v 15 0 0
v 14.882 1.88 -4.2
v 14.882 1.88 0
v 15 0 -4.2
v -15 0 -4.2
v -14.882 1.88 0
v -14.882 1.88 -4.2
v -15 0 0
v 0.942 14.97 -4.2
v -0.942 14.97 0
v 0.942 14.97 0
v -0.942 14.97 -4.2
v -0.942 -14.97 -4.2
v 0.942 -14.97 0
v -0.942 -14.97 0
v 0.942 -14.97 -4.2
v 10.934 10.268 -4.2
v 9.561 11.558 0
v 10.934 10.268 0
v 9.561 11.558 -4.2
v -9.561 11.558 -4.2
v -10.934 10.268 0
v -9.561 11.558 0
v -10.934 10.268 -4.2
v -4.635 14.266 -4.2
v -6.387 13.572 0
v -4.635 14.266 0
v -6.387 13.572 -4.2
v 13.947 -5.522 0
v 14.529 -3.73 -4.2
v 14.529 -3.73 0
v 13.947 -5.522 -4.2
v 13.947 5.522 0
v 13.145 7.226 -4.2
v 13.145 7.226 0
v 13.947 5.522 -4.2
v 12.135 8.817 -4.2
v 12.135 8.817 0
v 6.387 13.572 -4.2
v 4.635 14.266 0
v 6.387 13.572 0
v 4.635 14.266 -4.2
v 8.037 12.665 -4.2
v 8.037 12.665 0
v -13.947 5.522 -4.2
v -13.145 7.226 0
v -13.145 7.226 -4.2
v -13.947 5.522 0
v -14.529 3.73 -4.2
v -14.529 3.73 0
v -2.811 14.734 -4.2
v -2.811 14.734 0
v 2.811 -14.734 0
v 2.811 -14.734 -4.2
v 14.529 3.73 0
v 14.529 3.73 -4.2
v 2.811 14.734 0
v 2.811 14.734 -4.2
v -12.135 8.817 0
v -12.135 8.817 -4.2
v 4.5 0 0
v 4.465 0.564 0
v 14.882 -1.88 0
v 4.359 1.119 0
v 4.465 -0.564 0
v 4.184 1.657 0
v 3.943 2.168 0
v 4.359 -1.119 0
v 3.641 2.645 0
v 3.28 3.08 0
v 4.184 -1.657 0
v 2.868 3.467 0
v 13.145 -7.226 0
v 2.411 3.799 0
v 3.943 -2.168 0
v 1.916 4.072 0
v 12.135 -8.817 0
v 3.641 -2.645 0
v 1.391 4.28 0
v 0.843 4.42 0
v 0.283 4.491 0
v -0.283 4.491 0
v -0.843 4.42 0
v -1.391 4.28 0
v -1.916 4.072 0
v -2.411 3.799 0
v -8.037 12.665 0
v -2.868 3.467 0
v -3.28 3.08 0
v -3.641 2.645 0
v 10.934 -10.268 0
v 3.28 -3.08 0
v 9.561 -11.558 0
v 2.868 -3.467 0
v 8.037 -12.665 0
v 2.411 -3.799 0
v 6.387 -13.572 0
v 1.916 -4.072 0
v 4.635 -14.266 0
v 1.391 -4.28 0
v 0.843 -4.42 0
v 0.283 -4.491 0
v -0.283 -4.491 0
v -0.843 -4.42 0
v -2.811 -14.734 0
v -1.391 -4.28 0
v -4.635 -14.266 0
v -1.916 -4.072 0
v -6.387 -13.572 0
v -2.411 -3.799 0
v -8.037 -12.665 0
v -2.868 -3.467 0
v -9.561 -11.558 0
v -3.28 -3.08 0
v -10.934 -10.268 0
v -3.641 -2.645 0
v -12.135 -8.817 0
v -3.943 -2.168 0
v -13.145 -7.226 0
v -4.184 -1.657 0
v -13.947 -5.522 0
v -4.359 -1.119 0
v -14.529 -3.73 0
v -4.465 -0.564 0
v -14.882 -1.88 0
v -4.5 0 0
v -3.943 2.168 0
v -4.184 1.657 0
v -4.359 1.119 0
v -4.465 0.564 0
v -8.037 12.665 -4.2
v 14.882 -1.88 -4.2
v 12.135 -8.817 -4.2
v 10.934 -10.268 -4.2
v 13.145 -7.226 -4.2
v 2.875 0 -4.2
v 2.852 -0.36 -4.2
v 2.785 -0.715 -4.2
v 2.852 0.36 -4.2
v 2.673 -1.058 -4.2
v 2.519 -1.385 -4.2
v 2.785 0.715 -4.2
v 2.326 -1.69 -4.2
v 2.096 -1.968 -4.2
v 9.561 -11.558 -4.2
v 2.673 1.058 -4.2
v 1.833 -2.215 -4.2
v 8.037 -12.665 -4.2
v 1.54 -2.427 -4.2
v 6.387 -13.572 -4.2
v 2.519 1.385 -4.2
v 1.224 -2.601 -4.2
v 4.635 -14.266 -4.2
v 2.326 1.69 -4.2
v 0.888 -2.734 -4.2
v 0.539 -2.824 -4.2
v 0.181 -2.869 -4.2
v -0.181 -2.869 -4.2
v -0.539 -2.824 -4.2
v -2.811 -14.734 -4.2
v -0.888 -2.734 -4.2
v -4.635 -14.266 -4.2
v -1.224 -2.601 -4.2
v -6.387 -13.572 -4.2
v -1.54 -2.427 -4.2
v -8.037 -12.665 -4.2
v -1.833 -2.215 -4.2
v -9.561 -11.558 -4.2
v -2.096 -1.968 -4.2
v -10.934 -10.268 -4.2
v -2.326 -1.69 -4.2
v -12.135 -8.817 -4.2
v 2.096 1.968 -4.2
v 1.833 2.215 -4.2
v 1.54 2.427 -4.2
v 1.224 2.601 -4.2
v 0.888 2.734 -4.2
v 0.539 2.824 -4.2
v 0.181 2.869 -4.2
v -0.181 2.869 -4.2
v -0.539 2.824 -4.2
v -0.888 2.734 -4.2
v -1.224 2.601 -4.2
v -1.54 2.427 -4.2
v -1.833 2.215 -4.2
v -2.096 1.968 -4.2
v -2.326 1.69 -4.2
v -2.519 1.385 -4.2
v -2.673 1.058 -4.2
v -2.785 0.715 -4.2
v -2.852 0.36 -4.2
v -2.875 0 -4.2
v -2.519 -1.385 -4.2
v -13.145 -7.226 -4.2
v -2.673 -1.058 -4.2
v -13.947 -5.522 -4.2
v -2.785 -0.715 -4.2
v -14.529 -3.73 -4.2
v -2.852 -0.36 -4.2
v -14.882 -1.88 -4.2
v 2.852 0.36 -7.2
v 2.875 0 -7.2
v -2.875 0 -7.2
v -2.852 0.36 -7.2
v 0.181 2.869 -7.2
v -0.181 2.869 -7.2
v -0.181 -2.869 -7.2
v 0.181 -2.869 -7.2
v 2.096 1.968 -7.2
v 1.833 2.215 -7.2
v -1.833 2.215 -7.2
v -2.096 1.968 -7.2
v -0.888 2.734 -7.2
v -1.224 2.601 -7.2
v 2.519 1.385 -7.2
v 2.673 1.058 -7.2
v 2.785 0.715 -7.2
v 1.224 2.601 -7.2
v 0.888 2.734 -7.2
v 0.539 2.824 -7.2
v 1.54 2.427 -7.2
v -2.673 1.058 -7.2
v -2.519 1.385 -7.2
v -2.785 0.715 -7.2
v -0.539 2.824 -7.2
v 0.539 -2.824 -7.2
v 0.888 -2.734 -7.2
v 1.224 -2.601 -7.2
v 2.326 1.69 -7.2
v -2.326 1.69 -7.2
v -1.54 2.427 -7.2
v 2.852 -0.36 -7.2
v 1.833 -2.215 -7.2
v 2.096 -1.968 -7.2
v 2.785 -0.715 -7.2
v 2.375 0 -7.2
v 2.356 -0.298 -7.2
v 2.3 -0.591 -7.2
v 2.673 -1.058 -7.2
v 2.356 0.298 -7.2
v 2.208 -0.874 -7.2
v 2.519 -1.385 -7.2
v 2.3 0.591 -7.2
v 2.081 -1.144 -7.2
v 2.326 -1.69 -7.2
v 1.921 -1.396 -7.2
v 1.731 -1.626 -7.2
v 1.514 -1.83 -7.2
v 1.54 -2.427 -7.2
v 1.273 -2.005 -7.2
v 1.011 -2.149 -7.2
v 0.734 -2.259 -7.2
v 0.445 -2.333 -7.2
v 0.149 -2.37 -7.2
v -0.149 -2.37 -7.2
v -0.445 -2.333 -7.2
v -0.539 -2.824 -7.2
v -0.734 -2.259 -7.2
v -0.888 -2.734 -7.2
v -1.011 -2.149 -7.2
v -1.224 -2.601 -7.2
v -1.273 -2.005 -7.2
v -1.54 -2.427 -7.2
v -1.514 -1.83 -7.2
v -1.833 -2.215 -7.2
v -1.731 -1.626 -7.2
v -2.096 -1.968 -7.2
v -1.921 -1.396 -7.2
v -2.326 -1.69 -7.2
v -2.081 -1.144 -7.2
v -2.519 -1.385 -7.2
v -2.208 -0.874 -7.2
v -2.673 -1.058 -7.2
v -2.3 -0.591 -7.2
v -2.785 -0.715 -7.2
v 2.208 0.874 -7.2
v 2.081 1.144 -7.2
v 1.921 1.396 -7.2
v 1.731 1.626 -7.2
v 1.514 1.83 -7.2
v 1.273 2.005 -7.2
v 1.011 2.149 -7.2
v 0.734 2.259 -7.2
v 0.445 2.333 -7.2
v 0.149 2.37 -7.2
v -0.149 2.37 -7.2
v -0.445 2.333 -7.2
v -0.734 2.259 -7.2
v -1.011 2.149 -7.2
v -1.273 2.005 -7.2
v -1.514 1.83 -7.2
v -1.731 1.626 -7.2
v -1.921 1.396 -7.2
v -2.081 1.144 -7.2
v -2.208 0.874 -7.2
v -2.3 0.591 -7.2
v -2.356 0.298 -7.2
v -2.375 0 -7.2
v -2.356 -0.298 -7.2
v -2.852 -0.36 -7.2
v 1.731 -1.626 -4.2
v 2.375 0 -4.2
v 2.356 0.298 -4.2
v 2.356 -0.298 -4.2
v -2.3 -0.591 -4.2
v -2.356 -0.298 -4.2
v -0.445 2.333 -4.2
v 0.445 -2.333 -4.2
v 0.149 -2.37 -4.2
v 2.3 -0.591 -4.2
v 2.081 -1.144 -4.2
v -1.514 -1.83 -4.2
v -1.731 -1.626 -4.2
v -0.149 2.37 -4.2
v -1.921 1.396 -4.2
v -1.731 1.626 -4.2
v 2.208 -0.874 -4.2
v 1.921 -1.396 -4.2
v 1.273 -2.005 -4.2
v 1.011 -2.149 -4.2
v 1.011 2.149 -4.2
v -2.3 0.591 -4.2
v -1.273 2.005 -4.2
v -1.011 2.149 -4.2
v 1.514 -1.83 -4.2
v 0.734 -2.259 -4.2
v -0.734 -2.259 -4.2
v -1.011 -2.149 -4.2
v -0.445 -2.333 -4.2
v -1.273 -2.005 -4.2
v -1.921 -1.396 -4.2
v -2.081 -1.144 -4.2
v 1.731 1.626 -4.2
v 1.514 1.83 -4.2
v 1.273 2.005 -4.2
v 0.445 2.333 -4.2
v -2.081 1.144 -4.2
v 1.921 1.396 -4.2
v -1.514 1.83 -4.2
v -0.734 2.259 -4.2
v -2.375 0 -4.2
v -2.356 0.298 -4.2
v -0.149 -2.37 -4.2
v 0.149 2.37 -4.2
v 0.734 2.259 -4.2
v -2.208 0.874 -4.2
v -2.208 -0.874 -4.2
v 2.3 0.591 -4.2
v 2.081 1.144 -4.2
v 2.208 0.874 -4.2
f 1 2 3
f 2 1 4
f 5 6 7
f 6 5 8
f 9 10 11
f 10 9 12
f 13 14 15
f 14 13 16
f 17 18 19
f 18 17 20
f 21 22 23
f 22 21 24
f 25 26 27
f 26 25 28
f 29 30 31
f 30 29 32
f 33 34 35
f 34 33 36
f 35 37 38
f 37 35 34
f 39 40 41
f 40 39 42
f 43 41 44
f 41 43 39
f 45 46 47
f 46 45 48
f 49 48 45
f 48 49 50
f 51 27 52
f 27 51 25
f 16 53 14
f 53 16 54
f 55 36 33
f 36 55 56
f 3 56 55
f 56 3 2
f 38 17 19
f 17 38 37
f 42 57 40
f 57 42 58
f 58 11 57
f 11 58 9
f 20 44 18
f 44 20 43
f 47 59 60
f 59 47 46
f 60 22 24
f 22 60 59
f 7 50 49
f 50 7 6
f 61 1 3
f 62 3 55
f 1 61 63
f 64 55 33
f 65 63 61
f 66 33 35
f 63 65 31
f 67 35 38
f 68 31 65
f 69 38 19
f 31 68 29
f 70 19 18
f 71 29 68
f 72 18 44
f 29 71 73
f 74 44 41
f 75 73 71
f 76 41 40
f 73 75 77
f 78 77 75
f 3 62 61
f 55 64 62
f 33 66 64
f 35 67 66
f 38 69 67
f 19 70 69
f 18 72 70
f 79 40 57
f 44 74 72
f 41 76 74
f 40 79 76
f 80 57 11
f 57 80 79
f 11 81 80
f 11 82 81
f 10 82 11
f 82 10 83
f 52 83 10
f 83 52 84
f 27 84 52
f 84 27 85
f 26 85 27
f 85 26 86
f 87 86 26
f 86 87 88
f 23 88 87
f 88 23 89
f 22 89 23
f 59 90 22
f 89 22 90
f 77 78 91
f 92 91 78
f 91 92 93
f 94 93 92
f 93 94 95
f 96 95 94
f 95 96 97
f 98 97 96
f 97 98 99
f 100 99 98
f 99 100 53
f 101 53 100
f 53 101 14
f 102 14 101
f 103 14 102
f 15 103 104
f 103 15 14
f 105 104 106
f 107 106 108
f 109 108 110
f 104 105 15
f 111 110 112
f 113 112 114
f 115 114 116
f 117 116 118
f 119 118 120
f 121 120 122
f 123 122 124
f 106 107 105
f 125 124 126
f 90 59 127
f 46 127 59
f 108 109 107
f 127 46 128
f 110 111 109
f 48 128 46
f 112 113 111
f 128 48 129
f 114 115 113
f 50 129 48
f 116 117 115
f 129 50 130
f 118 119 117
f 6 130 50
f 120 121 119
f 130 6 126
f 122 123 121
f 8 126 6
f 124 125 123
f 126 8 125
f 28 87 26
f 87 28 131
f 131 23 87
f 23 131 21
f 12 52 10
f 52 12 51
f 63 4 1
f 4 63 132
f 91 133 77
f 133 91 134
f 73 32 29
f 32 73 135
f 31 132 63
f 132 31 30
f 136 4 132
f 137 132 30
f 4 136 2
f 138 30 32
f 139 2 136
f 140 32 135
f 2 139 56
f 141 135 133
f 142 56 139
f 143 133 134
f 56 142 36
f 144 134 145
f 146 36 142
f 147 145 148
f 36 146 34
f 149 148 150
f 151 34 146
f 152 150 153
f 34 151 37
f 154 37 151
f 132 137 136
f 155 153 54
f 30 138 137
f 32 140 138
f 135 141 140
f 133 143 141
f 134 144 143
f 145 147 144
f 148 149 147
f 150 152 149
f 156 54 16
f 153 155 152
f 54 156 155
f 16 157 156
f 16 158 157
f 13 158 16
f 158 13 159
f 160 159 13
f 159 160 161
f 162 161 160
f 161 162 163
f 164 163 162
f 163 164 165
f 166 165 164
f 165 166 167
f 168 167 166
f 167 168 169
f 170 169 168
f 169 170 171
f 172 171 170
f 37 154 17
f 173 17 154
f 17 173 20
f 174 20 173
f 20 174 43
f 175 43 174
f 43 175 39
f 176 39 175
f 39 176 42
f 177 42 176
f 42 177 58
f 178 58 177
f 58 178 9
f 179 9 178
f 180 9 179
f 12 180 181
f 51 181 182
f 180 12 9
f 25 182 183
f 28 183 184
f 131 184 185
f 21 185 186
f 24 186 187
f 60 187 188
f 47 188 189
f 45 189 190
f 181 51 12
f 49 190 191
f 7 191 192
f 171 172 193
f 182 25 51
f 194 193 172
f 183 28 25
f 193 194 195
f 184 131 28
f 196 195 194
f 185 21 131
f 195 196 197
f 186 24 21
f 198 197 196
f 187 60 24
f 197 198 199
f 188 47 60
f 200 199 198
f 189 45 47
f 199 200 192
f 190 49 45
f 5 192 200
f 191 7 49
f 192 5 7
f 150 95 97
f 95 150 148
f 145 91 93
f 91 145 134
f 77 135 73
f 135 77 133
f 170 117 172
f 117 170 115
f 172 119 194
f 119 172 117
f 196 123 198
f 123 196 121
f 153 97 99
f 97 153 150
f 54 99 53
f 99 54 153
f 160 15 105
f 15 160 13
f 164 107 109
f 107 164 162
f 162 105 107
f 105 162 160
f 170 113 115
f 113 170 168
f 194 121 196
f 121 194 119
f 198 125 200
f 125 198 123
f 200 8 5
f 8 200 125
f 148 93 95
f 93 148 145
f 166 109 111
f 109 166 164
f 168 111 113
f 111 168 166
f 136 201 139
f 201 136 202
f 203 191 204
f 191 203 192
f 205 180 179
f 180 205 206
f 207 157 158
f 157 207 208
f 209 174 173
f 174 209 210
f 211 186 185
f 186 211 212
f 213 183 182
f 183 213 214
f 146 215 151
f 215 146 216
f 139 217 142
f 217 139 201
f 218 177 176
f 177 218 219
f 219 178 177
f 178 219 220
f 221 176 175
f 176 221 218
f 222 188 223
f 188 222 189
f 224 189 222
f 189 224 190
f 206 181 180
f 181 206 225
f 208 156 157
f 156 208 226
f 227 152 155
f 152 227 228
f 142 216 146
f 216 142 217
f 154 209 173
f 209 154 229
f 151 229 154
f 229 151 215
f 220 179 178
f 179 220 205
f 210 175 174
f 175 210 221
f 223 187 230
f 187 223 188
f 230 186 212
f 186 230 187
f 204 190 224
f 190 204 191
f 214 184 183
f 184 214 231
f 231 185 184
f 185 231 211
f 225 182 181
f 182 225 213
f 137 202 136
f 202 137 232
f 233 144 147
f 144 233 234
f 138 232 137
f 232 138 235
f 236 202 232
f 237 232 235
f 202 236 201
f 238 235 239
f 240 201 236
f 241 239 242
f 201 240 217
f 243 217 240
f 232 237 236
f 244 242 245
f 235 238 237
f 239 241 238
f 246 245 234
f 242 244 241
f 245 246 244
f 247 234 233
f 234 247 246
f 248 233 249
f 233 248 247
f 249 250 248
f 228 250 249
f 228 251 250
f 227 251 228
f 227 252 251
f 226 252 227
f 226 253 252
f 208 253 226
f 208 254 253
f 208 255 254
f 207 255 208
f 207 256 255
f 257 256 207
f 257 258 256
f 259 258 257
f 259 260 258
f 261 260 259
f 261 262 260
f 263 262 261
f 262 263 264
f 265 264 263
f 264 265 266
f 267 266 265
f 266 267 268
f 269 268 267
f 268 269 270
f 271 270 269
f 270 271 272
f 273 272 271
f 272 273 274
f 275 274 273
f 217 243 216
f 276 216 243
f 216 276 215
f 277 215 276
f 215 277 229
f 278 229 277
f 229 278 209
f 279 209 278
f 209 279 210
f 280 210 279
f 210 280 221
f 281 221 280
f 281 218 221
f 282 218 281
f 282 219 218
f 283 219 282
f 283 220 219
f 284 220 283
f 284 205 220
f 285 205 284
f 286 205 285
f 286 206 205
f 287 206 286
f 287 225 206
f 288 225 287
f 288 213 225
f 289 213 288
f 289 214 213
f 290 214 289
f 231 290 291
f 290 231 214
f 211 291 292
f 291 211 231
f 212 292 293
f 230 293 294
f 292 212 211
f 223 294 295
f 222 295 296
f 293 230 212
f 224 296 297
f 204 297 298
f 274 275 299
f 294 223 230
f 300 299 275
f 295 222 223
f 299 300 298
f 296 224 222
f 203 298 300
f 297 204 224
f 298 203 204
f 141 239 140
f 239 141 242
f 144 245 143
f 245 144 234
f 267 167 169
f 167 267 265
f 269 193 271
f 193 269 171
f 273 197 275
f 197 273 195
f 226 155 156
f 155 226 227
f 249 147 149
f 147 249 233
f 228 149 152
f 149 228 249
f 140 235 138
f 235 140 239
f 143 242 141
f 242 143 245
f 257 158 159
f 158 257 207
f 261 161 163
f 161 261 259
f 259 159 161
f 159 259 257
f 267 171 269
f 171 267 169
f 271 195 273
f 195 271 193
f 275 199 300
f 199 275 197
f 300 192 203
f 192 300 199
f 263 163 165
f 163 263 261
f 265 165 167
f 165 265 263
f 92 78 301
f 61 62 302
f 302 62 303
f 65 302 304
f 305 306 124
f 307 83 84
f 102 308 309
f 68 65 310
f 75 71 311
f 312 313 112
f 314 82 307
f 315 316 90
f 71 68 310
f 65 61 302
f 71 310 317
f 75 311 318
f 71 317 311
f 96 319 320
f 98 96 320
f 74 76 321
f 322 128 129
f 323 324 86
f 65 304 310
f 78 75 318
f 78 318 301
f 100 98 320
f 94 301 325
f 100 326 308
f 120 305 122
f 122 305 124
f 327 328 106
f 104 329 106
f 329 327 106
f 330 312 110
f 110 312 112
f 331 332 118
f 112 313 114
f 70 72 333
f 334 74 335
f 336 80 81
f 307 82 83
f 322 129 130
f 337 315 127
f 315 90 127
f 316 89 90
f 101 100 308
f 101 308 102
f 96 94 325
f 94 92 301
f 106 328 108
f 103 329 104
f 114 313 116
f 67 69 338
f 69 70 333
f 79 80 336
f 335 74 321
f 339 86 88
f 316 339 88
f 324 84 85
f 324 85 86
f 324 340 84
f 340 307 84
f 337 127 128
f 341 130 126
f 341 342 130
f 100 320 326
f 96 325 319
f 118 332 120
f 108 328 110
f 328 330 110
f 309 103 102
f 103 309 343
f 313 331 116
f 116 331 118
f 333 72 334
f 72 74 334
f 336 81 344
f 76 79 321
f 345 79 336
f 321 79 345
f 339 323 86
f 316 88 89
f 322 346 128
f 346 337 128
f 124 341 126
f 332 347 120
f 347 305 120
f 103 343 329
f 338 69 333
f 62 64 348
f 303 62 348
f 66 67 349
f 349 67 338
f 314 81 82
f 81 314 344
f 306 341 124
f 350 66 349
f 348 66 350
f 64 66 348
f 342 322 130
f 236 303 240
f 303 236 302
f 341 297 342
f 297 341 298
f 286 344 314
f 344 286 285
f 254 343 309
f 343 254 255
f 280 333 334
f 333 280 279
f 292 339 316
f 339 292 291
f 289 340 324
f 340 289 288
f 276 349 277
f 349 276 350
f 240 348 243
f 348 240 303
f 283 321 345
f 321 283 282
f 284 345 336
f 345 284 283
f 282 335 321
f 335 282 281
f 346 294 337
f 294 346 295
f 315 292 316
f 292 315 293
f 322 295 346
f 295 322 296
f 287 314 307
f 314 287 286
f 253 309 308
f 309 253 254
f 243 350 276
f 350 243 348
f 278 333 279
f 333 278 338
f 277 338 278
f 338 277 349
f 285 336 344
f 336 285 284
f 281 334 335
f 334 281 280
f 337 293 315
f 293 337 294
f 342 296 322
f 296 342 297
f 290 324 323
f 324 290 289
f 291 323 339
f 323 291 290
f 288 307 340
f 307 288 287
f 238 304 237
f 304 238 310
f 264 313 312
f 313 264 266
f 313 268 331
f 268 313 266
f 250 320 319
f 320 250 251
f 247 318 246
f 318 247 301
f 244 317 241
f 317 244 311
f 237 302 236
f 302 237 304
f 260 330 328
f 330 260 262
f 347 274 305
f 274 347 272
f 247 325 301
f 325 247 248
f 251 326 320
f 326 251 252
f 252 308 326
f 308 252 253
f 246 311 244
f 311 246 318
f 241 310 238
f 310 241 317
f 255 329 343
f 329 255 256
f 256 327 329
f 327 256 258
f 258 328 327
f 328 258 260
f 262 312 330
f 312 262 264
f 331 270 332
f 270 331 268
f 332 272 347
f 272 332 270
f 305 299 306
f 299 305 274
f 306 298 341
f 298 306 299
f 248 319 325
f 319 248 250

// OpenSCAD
$fn = 50;


difference() {
	union() {
		translate(v = [0, 0, -4.2000000000]) {
			cylinder(h = 4.2000000000, r = 15.0000000000);
		}
		#translate(v = [0, 0, -7.2000000000]) {
			cylinder(h = 7.2000000000, r = 2.8750000000);
		}
	}
	union() {
		translate(v = [0, 0, 0]) {
			rotate(a = [0, 0, 0]) {
				difference() {
					union() {
						translate(v = [0, 0, -7.2000000000]) {
							cylinder(h = 7.2000000000, r = 2.2500000000);
						}
						translate(v = [0, 0, -4.2000000000]) {
							cylinder(h = 4.2000000000, r1 = 2.3750000000, r2 = 4.5000000000);
						}
						translate(v = [0, 0, -7.2000000000]) {
							cylinder(h = 7.2000000000, r = 2.3750000000);
						}
						translate(v = [0, 0, -7.2000000000]) {
							cylinder(h = 7.2000000000, r = 2.2500000000);
						}
					}
					union();
				}
			}
		}
	}
}
